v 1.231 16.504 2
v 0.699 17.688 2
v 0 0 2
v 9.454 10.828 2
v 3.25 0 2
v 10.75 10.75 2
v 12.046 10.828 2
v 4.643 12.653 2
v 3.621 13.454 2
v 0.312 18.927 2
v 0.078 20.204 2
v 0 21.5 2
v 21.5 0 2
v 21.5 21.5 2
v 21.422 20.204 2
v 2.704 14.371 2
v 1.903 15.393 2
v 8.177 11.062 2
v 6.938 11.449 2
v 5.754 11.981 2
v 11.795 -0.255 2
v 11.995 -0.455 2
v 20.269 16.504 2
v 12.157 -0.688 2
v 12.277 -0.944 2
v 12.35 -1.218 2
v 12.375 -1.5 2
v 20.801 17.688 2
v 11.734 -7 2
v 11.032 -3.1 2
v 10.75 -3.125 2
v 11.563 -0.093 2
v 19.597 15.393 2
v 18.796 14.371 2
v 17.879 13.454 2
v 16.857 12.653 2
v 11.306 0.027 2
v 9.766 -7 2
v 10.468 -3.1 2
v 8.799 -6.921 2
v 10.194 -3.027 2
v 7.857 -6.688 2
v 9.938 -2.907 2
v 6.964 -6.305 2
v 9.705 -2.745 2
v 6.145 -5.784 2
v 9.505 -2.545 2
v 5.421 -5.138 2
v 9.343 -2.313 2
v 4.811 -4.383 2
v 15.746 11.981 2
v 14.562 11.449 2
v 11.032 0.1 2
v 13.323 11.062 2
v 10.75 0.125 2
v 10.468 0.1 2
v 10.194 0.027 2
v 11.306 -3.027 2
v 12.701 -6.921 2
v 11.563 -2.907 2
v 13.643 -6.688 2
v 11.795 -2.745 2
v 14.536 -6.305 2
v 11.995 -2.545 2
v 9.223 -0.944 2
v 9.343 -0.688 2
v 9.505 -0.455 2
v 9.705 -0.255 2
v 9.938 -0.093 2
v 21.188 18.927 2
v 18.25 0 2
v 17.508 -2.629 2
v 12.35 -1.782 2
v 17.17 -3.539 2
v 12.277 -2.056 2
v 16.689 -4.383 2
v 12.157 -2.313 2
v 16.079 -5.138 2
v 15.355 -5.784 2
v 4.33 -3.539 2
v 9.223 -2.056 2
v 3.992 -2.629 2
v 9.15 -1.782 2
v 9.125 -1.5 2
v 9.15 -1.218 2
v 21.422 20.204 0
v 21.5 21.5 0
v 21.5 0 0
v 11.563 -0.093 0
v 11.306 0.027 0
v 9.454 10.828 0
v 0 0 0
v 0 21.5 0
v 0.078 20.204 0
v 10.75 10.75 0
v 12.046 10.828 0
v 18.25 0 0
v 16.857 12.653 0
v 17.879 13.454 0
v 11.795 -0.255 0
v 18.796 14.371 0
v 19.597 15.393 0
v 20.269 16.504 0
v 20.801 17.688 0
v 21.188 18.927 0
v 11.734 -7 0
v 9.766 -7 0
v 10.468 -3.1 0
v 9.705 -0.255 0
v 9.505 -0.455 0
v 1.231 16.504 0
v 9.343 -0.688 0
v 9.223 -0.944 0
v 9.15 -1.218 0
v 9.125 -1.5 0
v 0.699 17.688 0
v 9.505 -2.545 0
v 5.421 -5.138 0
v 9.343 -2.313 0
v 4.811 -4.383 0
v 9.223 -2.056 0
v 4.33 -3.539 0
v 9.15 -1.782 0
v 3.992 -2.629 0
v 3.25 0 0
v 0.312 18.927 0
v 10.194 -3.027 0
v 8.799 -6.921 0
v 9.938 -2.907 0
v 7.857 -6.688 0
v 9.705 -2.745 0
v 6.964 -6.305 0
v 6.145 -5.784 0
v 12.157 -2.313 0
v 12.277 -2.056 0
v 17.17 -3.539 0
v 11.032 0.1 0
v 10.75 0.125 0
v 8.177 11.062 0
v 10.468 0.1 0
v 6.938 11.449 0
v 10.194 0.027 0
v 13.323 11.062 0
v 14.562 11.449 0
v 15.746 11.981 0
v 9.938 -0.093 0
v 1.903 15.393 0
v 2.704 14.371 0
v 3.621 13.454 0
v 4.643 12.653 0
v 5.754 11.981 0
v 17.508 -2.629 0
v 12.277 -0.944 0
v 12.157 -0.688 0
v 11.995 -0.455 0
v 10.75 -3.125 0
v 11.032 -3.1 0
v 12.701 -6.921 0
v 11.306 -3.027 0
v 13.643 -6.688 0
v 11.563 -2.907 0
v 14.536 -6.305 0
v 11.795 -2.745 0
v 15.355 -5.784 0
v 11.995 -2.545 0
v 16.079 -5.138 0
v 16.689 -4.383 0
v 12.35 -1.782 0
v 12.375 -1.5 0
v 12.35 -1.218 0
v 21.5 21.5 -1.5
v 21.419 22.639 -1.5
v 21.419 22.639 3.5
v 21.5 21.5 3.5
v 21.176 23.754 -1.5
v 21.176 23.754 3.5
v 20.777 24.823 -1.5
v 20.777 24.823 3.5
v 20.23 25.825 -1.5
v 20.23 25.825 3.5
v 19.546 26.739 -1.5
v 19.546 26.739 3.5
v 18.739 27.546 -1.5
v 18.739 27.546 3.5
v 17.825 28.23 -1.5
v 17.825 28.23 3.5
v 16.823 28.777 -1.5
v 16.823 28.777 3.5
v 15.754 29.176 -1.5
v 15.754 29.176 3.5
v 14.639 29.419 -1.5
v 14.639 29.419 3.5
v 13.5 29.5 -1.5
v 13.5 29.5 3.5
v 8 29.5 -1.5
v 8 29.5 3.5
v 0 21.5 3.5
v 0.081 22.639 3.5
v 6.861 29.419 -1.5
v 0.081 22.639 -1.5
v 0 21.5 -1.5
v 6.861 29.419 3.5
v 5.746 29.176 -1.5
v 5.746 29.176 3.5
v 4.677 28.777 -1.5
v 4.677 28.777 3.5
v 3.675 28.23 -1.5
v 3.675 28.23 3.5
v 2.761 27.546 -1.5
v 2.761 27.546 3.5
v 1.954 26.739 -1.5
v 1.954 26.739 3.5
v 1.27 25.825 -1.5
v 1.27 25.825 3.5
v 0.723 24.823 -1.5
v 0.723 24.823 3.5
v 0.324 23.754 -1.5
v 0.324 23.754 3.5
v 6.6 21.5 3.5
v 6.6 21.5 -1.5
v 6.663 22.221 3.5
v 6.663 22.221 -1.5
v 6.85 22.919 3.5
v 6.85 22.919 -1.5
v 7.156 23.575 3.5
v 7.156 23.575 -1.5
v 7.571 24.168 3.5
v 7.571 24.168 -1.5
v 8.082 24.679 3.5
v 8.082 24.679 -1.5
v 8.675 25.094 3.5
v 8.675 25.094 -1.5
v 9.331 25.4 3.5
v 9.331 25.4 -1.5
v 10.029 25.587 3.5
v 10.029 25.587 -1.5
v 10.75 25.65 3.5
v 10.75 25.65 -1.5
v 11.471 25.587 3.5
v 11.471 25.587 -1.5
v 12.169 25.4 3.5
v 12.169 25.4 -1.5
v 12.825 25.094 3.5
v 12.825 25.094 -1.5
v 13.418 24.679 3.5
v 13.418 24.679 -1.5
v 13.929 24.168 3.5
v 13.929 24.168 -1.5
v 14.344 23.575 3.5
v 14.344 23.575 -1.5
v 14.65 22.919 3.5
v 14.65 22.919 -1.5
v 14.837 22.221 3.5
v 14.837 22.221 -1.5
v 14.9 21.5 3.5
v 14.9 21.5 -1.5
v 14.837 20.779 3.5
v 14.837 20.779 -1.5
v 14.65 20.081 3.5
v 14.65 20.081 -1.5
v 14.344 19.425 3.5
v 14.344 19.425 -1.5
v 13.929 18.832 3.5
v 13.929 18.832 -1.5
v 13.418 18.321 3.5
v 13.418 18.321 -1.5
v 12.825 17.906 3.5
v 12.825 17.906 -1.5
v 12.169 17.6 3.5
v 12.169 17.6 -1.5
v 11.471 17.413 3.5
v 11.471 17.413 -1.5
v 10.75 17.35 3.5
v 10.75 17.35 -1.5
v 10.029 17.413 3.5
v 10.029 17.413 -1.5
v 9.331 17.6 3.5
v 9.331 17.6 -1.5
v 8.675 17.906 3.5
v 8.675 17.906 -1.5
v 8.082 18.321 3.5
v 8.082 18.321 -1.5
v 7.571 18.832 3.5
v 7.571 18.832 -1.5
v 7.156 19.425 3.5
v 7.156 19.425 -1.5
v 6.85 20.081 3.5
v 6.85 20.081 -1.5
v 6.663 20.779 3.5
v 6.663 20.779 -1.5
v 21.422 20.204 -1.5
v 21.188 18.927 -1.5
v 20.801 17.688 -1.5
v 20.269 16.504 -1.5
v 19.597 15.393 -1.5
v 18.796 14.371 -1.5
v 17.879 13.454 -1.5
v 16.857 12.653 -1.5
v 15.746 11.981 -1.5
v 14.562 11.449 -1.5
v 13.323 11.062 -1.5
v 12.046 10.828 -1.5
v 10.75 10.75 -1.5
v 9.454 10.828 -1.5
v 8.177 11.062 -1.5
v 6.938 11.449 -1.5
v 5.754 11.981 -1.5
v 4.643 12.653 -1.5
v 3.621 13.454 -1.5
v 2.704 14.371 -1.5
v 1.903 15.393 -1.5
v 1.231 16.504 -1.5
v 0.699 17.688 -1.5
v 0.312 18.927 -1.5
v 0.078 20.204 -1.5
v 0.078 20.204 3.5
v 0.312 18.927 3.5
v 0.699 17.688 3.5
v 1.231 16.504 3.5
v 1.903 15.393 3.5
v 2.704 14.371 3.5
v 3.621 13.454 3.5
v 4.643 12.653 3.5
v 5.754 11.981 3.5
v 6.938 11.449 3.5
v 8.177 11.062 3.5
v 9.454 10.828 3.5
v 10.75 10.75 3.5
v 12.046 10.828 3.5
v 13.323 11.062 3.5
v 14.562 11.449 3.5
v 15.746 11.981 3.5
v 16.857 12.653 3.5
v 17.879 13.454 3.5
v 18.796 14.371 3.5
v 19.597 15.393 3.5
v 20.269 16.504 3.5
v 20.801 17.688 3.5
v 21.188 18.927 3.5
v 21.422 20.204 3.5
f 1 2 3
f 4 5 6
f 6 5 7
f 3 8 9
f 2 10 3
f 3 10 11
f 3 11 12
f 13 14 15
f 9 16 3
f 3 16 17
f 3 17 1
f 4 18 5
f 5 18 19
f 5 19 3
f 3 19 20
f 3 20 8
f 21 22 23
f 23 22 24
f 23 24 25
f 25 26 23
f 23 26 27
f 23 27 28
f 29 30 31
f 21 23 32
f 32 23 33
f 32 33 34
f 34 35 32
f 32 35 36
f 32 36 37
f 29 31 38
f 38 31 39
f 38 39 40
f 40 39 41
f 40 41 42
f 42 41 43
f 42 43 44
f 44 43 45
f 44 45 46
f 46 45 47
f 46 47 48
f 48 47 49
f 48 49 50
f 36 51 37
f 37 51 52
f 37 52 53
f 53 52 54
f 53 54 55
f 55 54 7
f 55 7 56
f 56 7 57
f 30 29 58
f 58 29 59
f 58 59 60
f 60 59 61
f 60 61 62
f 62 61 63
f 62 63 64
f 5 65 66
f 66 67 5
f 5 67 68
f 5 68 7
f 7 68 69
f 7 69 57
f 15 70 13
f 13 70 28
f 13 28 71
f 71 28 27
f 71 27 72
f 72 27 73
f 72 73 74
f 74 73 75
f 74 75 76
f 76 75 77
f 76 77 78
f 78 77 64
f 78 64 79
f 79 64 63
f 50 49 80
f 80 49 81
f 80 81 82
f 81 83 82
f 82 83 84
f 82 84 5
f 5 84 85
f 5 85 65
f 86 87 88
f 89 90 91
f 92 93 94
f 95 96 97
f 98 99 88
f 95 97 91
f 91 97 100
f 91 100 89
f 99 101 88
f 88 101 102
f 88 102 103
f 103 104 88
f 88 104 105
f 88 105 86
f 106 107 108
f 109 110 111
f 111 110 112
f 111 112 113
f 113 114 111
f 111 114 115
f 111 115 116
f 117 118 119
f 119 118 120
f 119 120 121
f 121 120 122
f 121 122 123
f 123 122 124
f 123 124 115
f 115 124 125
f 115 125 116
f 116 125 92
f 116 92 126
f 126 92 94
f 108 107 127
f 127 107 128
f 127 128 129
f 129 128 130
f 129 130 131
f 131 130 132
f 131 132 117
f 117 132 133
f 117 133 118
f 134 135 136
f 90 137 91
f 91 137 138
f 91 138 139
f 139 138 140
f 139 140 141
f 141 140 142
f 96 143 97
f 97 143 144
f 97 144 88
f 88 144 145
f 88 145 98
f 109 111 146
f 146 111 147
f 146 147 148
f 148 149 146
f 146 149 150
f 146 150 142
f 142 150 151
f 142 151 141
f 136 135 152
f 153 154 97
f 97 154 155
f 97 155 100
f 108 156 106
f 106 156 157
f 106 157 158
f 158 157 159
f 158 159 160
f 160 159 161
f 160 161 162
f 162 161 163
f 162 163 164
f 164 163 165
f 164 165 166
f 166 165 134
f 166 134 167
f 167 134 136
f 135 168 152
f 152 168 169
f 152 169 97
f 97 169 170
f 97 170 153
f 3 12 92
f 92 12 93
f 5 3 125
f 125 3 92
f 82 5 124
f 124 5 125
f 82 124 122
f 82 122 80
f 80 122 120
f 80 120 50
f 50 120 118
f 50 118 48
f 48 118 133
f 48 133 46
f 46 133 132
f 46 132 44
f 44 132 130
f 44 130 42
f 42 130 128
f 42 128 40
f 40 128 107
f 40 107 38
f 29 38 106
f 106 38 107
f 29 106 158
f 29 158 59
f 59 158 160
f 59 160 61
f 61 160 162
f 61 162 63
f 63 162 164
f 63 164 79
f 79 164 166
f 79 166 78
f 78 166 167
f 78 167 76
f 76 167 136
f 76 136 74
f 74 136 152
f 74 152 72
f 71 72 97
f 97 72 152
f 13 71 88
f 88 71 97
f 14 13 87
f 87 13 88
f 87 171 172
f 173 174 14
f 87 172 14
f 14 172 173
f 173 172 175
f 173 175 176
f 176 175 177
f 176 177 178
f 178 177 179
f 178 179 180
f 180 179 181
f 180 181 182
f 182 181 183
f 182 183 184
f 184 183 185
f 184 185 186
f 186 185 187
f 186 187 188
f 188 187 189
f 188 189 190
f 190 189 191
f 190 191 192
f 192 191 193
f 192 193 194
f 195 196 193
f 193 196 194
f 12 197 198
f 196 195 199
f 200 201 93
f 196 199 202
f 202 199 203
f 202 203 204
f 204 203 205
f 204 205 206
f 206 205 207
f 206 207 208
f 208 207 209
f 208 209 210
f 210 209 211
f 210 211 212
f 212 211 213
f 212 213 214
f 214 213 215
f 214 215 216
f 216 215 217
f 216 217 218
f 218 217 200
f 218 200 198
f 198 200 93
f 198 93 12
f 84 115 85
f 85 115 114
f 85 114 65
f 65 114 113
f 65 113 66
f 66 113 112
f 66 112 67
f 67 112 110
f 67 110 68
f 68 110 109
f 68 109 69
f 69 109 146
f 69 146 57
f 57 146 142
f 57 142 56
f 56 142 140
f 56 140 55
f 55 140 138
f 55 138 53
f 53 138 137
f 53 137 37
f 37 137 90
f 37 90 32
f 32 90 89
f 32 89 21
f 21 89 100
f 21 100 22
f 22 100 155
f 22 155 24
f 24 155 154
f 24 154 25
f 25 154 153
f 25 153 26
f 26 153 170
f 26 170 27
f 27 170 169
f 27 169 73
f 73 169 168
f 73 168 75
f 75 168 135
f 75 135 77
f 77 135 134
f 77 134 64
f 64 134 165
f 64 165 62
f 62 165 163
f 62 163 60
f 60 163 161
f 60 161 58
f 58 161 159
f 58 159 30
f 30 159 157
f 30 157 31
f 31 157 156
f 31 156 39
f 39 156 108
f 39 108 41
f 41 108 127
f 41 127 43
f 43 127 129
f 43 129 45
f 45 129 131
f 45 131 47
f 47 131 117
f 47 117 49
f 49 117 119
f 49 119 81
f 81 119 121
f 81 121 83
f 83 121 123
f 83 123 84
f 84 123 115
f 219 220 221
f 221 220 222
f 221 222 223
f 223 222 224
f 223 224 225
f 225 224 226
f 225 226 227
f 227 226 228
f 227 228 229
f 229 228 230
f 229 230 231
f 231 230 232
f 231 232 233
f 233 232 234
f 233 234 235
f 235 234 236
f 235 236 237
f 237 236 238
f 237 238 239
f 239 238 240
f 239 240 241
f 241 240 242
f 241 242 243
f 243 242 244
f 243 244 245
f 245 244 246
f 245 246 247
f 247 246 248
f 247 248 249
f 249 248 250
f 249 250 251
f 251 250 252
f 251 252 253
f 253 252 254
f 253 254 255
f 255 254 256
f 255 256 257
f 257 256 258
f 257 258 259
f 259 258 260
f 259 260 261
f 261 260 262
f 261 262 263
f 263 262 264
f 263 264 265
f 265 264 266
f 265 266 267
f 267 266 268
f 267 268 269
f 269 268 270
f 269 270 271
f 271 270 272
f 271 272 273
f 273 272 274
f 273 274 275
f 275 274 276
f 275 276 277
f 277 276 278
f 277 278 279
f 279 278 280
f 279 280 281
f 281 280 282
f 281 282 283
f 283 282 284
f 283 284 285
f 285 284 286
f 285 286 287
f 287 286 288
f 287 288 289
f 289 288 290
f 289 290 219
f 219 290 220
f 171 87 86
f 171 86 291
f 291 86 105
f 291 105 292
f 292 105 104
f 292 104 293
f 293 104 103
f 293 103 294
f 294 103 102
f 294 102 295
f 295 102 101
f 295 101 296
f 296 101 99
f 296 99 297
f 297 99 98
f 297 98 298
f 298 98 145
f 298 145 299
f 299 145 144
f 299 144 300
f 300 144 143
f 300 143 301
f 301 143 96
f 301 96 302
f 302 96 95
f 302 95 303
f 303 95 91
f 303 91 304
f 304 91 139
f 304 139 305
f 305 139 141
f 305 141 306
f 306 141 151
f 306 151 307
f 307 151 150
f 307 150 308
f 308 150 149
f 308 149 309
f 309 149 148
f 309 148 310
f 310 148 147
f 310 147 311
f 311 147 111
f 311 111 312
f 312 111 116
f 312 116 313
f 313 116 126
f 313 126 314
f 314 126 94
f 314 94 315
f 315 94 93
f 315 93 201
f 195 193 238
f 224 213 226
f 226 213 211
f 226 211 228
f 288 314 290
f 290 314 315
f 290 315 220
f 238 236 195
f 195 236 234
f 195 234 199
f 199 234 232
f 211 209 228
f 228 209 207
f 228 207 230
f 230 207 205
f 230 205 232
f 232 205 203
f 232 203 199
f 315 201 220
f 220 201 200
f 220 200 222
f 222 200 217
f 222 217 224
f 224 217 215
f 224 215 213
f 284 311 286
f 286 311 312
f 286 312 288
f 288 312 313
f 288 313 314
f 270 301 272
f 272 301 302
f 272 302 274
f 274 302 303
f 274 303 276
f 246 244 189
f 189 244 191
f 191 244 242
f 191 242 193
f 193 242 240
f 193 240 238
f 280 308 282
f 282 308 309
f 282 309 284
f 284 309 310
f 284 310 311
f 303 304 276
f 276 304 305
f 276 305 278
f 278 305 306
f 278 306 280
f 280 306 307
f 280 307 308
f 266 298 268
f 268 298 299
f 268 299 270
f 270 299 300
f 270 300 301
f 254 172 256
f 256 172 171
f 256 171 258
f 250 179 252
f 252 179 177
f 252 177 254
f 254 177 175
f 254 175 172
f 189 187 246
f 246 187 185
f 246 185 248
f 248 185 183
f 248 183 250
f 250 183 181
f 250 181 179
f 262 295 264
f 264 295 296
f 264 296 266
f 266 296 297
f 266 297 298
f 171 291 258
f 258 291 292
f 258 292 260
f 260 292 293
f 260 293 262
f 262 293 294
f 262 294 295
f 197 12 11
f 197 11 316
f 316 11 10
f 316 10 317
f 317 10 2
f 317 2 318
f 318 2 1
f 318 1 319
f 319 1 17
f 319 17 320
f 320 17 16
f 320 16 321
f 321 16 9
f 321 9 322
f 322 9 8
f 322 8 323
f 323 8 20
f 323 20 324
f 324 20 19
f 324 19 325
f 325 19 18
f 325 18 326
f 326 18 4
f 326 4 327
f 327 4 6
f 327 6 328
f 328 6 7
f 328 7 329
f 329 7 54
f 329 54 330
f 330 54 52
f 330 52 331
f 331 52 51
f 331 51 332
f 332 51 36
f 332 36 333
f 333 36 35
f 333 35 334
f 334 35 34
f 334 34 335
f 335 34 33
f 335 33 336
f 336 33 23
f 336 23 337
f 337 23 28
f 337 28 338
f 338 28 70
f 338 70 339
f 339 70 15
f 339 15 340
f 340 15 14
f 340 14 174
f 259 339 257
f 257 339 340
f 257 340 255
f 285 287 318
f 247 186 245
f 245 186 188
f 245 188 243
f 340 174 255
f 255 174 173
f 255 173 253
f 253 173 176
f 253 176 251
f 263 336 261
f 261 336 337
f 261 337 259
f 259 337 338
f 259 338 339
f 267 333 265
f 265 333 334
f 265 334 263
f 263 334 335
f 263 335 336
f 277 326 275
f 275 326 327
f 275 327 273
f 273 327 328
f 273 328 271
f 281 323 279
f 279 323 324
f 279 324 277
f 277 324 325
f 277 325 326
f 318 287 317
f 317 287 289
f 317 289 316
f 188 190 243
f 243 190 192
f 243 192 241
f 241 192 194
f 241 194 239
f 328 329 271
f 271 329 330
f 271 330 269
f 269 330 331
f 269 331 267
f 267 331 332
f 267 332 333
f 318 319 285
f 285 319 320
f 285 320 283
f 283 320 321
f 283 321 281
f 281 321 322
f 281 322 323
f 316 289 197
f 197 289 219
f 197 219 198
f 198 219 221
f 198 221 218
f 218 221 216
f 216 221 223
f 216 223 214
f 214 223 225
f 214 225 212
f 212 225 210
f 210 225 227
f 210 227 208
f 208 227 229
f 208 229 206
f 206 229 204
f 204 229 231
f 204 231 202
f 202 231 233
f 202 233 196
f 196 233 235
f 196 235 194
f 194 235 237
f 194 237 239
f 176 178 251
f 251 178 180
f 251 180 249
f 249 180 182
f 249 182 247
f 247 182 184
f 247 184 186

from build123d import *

# Parameters (mm, degrees)
ESQUISSE1_R             = 4.15
ESQUISSE1_R_2           = 1.625
BOSS_EXTRU_1_DEPTH      = 2
SALIENTE_EXTRUIR1_START = -1.5
CROQUIS1_R              = 4.15
SALIENTE_EXTRUIR1_DEPTH = 1.5


with BuildPart() as part:
    # Esquisse1 → Boss.-Extru.1 (new body)
    with BuildSketch(Plane.XY):
        with BuildLine():
            Line((3.25, 0), (3.991824339, -2.629250822))
            ThreePointArc((3.991824339, -2.629250822), (6.145300464, -5.784114596), (9.766384215, -7))
            Line((9.766384215, -7), (11.733615785, -7))
            ThreePointArc((11.733615785, -7), (15.354699536, -5.784114596), (17.508175661, -2.629250822))
            Line((17.508175661, -2.629250822), (18.25, 0))
            Line((18.25, 0), (21.5, 0))
            Line((21.5, 0), (21.5, 21.5))
            ThreePointArc((21.5, 21.5), (19.156854249, 27.156854249), (13.5, 29.5))
            Line((13.5, 29.5), (8, 29.5))
            ThreePointArc((8, 29.5), (2.343145751, 27.156854249), (0, 21.5))
            Line((0, 21.5), (0, 0))
            Line((0, 0), (3.25, 0))
        make_face()
        with Locations((10.75, 21.5)):
            Circle(ESQUISSE1_R, mode=Mode.SUBTRACT)
        with Locations((10.75, -1.5)):
            Circle(ESQUISSE1_R_2, mode=Mode.SUBTRACT)
    extrude(amount=BOSS_EXTRU_1_DEPTH)

    # Croquis1 → Saliente-Extruir1 (add)
    with BuildSketch(Plane.XY.offset(SALIENTE_EXTRUIR1_START)):
        with BuildLine():
            ThreePointArc((0, 21.5), (3.148602144, 13.898602061), (10.750000117, 10.75))
            ThreePointArc((10.750000117, 10.75), (18.351397939, 13.898602144), (21.5, 21.5))
            ThreePointArc((21.5, 21.5), (19.156854249, 27.156854249), (13.5, 29.5))
            Line((13.5, 29.5), (8, 29.5))
            ThreePointArc((8, 29.5), (2.343145751, 27.156854249), (0, 21.5))
        make_face()
        with Locations((10.75, 21.5)):
            Circle(CROQUIS1_R, mode=Mode.SUBTRACT)
    saliente_extruir1 = extrude(amount=SALIENTE_EXTRUIR1_DEPTH)

    # Simetría1: Saliente-Extruir1 across plane
    add(saliente_extruir1.mirror(Plane(origin=(0, 0, 1), x_dir=(1, 0, 0), z_dir=(0, 0, -1))))


solid = part.part
